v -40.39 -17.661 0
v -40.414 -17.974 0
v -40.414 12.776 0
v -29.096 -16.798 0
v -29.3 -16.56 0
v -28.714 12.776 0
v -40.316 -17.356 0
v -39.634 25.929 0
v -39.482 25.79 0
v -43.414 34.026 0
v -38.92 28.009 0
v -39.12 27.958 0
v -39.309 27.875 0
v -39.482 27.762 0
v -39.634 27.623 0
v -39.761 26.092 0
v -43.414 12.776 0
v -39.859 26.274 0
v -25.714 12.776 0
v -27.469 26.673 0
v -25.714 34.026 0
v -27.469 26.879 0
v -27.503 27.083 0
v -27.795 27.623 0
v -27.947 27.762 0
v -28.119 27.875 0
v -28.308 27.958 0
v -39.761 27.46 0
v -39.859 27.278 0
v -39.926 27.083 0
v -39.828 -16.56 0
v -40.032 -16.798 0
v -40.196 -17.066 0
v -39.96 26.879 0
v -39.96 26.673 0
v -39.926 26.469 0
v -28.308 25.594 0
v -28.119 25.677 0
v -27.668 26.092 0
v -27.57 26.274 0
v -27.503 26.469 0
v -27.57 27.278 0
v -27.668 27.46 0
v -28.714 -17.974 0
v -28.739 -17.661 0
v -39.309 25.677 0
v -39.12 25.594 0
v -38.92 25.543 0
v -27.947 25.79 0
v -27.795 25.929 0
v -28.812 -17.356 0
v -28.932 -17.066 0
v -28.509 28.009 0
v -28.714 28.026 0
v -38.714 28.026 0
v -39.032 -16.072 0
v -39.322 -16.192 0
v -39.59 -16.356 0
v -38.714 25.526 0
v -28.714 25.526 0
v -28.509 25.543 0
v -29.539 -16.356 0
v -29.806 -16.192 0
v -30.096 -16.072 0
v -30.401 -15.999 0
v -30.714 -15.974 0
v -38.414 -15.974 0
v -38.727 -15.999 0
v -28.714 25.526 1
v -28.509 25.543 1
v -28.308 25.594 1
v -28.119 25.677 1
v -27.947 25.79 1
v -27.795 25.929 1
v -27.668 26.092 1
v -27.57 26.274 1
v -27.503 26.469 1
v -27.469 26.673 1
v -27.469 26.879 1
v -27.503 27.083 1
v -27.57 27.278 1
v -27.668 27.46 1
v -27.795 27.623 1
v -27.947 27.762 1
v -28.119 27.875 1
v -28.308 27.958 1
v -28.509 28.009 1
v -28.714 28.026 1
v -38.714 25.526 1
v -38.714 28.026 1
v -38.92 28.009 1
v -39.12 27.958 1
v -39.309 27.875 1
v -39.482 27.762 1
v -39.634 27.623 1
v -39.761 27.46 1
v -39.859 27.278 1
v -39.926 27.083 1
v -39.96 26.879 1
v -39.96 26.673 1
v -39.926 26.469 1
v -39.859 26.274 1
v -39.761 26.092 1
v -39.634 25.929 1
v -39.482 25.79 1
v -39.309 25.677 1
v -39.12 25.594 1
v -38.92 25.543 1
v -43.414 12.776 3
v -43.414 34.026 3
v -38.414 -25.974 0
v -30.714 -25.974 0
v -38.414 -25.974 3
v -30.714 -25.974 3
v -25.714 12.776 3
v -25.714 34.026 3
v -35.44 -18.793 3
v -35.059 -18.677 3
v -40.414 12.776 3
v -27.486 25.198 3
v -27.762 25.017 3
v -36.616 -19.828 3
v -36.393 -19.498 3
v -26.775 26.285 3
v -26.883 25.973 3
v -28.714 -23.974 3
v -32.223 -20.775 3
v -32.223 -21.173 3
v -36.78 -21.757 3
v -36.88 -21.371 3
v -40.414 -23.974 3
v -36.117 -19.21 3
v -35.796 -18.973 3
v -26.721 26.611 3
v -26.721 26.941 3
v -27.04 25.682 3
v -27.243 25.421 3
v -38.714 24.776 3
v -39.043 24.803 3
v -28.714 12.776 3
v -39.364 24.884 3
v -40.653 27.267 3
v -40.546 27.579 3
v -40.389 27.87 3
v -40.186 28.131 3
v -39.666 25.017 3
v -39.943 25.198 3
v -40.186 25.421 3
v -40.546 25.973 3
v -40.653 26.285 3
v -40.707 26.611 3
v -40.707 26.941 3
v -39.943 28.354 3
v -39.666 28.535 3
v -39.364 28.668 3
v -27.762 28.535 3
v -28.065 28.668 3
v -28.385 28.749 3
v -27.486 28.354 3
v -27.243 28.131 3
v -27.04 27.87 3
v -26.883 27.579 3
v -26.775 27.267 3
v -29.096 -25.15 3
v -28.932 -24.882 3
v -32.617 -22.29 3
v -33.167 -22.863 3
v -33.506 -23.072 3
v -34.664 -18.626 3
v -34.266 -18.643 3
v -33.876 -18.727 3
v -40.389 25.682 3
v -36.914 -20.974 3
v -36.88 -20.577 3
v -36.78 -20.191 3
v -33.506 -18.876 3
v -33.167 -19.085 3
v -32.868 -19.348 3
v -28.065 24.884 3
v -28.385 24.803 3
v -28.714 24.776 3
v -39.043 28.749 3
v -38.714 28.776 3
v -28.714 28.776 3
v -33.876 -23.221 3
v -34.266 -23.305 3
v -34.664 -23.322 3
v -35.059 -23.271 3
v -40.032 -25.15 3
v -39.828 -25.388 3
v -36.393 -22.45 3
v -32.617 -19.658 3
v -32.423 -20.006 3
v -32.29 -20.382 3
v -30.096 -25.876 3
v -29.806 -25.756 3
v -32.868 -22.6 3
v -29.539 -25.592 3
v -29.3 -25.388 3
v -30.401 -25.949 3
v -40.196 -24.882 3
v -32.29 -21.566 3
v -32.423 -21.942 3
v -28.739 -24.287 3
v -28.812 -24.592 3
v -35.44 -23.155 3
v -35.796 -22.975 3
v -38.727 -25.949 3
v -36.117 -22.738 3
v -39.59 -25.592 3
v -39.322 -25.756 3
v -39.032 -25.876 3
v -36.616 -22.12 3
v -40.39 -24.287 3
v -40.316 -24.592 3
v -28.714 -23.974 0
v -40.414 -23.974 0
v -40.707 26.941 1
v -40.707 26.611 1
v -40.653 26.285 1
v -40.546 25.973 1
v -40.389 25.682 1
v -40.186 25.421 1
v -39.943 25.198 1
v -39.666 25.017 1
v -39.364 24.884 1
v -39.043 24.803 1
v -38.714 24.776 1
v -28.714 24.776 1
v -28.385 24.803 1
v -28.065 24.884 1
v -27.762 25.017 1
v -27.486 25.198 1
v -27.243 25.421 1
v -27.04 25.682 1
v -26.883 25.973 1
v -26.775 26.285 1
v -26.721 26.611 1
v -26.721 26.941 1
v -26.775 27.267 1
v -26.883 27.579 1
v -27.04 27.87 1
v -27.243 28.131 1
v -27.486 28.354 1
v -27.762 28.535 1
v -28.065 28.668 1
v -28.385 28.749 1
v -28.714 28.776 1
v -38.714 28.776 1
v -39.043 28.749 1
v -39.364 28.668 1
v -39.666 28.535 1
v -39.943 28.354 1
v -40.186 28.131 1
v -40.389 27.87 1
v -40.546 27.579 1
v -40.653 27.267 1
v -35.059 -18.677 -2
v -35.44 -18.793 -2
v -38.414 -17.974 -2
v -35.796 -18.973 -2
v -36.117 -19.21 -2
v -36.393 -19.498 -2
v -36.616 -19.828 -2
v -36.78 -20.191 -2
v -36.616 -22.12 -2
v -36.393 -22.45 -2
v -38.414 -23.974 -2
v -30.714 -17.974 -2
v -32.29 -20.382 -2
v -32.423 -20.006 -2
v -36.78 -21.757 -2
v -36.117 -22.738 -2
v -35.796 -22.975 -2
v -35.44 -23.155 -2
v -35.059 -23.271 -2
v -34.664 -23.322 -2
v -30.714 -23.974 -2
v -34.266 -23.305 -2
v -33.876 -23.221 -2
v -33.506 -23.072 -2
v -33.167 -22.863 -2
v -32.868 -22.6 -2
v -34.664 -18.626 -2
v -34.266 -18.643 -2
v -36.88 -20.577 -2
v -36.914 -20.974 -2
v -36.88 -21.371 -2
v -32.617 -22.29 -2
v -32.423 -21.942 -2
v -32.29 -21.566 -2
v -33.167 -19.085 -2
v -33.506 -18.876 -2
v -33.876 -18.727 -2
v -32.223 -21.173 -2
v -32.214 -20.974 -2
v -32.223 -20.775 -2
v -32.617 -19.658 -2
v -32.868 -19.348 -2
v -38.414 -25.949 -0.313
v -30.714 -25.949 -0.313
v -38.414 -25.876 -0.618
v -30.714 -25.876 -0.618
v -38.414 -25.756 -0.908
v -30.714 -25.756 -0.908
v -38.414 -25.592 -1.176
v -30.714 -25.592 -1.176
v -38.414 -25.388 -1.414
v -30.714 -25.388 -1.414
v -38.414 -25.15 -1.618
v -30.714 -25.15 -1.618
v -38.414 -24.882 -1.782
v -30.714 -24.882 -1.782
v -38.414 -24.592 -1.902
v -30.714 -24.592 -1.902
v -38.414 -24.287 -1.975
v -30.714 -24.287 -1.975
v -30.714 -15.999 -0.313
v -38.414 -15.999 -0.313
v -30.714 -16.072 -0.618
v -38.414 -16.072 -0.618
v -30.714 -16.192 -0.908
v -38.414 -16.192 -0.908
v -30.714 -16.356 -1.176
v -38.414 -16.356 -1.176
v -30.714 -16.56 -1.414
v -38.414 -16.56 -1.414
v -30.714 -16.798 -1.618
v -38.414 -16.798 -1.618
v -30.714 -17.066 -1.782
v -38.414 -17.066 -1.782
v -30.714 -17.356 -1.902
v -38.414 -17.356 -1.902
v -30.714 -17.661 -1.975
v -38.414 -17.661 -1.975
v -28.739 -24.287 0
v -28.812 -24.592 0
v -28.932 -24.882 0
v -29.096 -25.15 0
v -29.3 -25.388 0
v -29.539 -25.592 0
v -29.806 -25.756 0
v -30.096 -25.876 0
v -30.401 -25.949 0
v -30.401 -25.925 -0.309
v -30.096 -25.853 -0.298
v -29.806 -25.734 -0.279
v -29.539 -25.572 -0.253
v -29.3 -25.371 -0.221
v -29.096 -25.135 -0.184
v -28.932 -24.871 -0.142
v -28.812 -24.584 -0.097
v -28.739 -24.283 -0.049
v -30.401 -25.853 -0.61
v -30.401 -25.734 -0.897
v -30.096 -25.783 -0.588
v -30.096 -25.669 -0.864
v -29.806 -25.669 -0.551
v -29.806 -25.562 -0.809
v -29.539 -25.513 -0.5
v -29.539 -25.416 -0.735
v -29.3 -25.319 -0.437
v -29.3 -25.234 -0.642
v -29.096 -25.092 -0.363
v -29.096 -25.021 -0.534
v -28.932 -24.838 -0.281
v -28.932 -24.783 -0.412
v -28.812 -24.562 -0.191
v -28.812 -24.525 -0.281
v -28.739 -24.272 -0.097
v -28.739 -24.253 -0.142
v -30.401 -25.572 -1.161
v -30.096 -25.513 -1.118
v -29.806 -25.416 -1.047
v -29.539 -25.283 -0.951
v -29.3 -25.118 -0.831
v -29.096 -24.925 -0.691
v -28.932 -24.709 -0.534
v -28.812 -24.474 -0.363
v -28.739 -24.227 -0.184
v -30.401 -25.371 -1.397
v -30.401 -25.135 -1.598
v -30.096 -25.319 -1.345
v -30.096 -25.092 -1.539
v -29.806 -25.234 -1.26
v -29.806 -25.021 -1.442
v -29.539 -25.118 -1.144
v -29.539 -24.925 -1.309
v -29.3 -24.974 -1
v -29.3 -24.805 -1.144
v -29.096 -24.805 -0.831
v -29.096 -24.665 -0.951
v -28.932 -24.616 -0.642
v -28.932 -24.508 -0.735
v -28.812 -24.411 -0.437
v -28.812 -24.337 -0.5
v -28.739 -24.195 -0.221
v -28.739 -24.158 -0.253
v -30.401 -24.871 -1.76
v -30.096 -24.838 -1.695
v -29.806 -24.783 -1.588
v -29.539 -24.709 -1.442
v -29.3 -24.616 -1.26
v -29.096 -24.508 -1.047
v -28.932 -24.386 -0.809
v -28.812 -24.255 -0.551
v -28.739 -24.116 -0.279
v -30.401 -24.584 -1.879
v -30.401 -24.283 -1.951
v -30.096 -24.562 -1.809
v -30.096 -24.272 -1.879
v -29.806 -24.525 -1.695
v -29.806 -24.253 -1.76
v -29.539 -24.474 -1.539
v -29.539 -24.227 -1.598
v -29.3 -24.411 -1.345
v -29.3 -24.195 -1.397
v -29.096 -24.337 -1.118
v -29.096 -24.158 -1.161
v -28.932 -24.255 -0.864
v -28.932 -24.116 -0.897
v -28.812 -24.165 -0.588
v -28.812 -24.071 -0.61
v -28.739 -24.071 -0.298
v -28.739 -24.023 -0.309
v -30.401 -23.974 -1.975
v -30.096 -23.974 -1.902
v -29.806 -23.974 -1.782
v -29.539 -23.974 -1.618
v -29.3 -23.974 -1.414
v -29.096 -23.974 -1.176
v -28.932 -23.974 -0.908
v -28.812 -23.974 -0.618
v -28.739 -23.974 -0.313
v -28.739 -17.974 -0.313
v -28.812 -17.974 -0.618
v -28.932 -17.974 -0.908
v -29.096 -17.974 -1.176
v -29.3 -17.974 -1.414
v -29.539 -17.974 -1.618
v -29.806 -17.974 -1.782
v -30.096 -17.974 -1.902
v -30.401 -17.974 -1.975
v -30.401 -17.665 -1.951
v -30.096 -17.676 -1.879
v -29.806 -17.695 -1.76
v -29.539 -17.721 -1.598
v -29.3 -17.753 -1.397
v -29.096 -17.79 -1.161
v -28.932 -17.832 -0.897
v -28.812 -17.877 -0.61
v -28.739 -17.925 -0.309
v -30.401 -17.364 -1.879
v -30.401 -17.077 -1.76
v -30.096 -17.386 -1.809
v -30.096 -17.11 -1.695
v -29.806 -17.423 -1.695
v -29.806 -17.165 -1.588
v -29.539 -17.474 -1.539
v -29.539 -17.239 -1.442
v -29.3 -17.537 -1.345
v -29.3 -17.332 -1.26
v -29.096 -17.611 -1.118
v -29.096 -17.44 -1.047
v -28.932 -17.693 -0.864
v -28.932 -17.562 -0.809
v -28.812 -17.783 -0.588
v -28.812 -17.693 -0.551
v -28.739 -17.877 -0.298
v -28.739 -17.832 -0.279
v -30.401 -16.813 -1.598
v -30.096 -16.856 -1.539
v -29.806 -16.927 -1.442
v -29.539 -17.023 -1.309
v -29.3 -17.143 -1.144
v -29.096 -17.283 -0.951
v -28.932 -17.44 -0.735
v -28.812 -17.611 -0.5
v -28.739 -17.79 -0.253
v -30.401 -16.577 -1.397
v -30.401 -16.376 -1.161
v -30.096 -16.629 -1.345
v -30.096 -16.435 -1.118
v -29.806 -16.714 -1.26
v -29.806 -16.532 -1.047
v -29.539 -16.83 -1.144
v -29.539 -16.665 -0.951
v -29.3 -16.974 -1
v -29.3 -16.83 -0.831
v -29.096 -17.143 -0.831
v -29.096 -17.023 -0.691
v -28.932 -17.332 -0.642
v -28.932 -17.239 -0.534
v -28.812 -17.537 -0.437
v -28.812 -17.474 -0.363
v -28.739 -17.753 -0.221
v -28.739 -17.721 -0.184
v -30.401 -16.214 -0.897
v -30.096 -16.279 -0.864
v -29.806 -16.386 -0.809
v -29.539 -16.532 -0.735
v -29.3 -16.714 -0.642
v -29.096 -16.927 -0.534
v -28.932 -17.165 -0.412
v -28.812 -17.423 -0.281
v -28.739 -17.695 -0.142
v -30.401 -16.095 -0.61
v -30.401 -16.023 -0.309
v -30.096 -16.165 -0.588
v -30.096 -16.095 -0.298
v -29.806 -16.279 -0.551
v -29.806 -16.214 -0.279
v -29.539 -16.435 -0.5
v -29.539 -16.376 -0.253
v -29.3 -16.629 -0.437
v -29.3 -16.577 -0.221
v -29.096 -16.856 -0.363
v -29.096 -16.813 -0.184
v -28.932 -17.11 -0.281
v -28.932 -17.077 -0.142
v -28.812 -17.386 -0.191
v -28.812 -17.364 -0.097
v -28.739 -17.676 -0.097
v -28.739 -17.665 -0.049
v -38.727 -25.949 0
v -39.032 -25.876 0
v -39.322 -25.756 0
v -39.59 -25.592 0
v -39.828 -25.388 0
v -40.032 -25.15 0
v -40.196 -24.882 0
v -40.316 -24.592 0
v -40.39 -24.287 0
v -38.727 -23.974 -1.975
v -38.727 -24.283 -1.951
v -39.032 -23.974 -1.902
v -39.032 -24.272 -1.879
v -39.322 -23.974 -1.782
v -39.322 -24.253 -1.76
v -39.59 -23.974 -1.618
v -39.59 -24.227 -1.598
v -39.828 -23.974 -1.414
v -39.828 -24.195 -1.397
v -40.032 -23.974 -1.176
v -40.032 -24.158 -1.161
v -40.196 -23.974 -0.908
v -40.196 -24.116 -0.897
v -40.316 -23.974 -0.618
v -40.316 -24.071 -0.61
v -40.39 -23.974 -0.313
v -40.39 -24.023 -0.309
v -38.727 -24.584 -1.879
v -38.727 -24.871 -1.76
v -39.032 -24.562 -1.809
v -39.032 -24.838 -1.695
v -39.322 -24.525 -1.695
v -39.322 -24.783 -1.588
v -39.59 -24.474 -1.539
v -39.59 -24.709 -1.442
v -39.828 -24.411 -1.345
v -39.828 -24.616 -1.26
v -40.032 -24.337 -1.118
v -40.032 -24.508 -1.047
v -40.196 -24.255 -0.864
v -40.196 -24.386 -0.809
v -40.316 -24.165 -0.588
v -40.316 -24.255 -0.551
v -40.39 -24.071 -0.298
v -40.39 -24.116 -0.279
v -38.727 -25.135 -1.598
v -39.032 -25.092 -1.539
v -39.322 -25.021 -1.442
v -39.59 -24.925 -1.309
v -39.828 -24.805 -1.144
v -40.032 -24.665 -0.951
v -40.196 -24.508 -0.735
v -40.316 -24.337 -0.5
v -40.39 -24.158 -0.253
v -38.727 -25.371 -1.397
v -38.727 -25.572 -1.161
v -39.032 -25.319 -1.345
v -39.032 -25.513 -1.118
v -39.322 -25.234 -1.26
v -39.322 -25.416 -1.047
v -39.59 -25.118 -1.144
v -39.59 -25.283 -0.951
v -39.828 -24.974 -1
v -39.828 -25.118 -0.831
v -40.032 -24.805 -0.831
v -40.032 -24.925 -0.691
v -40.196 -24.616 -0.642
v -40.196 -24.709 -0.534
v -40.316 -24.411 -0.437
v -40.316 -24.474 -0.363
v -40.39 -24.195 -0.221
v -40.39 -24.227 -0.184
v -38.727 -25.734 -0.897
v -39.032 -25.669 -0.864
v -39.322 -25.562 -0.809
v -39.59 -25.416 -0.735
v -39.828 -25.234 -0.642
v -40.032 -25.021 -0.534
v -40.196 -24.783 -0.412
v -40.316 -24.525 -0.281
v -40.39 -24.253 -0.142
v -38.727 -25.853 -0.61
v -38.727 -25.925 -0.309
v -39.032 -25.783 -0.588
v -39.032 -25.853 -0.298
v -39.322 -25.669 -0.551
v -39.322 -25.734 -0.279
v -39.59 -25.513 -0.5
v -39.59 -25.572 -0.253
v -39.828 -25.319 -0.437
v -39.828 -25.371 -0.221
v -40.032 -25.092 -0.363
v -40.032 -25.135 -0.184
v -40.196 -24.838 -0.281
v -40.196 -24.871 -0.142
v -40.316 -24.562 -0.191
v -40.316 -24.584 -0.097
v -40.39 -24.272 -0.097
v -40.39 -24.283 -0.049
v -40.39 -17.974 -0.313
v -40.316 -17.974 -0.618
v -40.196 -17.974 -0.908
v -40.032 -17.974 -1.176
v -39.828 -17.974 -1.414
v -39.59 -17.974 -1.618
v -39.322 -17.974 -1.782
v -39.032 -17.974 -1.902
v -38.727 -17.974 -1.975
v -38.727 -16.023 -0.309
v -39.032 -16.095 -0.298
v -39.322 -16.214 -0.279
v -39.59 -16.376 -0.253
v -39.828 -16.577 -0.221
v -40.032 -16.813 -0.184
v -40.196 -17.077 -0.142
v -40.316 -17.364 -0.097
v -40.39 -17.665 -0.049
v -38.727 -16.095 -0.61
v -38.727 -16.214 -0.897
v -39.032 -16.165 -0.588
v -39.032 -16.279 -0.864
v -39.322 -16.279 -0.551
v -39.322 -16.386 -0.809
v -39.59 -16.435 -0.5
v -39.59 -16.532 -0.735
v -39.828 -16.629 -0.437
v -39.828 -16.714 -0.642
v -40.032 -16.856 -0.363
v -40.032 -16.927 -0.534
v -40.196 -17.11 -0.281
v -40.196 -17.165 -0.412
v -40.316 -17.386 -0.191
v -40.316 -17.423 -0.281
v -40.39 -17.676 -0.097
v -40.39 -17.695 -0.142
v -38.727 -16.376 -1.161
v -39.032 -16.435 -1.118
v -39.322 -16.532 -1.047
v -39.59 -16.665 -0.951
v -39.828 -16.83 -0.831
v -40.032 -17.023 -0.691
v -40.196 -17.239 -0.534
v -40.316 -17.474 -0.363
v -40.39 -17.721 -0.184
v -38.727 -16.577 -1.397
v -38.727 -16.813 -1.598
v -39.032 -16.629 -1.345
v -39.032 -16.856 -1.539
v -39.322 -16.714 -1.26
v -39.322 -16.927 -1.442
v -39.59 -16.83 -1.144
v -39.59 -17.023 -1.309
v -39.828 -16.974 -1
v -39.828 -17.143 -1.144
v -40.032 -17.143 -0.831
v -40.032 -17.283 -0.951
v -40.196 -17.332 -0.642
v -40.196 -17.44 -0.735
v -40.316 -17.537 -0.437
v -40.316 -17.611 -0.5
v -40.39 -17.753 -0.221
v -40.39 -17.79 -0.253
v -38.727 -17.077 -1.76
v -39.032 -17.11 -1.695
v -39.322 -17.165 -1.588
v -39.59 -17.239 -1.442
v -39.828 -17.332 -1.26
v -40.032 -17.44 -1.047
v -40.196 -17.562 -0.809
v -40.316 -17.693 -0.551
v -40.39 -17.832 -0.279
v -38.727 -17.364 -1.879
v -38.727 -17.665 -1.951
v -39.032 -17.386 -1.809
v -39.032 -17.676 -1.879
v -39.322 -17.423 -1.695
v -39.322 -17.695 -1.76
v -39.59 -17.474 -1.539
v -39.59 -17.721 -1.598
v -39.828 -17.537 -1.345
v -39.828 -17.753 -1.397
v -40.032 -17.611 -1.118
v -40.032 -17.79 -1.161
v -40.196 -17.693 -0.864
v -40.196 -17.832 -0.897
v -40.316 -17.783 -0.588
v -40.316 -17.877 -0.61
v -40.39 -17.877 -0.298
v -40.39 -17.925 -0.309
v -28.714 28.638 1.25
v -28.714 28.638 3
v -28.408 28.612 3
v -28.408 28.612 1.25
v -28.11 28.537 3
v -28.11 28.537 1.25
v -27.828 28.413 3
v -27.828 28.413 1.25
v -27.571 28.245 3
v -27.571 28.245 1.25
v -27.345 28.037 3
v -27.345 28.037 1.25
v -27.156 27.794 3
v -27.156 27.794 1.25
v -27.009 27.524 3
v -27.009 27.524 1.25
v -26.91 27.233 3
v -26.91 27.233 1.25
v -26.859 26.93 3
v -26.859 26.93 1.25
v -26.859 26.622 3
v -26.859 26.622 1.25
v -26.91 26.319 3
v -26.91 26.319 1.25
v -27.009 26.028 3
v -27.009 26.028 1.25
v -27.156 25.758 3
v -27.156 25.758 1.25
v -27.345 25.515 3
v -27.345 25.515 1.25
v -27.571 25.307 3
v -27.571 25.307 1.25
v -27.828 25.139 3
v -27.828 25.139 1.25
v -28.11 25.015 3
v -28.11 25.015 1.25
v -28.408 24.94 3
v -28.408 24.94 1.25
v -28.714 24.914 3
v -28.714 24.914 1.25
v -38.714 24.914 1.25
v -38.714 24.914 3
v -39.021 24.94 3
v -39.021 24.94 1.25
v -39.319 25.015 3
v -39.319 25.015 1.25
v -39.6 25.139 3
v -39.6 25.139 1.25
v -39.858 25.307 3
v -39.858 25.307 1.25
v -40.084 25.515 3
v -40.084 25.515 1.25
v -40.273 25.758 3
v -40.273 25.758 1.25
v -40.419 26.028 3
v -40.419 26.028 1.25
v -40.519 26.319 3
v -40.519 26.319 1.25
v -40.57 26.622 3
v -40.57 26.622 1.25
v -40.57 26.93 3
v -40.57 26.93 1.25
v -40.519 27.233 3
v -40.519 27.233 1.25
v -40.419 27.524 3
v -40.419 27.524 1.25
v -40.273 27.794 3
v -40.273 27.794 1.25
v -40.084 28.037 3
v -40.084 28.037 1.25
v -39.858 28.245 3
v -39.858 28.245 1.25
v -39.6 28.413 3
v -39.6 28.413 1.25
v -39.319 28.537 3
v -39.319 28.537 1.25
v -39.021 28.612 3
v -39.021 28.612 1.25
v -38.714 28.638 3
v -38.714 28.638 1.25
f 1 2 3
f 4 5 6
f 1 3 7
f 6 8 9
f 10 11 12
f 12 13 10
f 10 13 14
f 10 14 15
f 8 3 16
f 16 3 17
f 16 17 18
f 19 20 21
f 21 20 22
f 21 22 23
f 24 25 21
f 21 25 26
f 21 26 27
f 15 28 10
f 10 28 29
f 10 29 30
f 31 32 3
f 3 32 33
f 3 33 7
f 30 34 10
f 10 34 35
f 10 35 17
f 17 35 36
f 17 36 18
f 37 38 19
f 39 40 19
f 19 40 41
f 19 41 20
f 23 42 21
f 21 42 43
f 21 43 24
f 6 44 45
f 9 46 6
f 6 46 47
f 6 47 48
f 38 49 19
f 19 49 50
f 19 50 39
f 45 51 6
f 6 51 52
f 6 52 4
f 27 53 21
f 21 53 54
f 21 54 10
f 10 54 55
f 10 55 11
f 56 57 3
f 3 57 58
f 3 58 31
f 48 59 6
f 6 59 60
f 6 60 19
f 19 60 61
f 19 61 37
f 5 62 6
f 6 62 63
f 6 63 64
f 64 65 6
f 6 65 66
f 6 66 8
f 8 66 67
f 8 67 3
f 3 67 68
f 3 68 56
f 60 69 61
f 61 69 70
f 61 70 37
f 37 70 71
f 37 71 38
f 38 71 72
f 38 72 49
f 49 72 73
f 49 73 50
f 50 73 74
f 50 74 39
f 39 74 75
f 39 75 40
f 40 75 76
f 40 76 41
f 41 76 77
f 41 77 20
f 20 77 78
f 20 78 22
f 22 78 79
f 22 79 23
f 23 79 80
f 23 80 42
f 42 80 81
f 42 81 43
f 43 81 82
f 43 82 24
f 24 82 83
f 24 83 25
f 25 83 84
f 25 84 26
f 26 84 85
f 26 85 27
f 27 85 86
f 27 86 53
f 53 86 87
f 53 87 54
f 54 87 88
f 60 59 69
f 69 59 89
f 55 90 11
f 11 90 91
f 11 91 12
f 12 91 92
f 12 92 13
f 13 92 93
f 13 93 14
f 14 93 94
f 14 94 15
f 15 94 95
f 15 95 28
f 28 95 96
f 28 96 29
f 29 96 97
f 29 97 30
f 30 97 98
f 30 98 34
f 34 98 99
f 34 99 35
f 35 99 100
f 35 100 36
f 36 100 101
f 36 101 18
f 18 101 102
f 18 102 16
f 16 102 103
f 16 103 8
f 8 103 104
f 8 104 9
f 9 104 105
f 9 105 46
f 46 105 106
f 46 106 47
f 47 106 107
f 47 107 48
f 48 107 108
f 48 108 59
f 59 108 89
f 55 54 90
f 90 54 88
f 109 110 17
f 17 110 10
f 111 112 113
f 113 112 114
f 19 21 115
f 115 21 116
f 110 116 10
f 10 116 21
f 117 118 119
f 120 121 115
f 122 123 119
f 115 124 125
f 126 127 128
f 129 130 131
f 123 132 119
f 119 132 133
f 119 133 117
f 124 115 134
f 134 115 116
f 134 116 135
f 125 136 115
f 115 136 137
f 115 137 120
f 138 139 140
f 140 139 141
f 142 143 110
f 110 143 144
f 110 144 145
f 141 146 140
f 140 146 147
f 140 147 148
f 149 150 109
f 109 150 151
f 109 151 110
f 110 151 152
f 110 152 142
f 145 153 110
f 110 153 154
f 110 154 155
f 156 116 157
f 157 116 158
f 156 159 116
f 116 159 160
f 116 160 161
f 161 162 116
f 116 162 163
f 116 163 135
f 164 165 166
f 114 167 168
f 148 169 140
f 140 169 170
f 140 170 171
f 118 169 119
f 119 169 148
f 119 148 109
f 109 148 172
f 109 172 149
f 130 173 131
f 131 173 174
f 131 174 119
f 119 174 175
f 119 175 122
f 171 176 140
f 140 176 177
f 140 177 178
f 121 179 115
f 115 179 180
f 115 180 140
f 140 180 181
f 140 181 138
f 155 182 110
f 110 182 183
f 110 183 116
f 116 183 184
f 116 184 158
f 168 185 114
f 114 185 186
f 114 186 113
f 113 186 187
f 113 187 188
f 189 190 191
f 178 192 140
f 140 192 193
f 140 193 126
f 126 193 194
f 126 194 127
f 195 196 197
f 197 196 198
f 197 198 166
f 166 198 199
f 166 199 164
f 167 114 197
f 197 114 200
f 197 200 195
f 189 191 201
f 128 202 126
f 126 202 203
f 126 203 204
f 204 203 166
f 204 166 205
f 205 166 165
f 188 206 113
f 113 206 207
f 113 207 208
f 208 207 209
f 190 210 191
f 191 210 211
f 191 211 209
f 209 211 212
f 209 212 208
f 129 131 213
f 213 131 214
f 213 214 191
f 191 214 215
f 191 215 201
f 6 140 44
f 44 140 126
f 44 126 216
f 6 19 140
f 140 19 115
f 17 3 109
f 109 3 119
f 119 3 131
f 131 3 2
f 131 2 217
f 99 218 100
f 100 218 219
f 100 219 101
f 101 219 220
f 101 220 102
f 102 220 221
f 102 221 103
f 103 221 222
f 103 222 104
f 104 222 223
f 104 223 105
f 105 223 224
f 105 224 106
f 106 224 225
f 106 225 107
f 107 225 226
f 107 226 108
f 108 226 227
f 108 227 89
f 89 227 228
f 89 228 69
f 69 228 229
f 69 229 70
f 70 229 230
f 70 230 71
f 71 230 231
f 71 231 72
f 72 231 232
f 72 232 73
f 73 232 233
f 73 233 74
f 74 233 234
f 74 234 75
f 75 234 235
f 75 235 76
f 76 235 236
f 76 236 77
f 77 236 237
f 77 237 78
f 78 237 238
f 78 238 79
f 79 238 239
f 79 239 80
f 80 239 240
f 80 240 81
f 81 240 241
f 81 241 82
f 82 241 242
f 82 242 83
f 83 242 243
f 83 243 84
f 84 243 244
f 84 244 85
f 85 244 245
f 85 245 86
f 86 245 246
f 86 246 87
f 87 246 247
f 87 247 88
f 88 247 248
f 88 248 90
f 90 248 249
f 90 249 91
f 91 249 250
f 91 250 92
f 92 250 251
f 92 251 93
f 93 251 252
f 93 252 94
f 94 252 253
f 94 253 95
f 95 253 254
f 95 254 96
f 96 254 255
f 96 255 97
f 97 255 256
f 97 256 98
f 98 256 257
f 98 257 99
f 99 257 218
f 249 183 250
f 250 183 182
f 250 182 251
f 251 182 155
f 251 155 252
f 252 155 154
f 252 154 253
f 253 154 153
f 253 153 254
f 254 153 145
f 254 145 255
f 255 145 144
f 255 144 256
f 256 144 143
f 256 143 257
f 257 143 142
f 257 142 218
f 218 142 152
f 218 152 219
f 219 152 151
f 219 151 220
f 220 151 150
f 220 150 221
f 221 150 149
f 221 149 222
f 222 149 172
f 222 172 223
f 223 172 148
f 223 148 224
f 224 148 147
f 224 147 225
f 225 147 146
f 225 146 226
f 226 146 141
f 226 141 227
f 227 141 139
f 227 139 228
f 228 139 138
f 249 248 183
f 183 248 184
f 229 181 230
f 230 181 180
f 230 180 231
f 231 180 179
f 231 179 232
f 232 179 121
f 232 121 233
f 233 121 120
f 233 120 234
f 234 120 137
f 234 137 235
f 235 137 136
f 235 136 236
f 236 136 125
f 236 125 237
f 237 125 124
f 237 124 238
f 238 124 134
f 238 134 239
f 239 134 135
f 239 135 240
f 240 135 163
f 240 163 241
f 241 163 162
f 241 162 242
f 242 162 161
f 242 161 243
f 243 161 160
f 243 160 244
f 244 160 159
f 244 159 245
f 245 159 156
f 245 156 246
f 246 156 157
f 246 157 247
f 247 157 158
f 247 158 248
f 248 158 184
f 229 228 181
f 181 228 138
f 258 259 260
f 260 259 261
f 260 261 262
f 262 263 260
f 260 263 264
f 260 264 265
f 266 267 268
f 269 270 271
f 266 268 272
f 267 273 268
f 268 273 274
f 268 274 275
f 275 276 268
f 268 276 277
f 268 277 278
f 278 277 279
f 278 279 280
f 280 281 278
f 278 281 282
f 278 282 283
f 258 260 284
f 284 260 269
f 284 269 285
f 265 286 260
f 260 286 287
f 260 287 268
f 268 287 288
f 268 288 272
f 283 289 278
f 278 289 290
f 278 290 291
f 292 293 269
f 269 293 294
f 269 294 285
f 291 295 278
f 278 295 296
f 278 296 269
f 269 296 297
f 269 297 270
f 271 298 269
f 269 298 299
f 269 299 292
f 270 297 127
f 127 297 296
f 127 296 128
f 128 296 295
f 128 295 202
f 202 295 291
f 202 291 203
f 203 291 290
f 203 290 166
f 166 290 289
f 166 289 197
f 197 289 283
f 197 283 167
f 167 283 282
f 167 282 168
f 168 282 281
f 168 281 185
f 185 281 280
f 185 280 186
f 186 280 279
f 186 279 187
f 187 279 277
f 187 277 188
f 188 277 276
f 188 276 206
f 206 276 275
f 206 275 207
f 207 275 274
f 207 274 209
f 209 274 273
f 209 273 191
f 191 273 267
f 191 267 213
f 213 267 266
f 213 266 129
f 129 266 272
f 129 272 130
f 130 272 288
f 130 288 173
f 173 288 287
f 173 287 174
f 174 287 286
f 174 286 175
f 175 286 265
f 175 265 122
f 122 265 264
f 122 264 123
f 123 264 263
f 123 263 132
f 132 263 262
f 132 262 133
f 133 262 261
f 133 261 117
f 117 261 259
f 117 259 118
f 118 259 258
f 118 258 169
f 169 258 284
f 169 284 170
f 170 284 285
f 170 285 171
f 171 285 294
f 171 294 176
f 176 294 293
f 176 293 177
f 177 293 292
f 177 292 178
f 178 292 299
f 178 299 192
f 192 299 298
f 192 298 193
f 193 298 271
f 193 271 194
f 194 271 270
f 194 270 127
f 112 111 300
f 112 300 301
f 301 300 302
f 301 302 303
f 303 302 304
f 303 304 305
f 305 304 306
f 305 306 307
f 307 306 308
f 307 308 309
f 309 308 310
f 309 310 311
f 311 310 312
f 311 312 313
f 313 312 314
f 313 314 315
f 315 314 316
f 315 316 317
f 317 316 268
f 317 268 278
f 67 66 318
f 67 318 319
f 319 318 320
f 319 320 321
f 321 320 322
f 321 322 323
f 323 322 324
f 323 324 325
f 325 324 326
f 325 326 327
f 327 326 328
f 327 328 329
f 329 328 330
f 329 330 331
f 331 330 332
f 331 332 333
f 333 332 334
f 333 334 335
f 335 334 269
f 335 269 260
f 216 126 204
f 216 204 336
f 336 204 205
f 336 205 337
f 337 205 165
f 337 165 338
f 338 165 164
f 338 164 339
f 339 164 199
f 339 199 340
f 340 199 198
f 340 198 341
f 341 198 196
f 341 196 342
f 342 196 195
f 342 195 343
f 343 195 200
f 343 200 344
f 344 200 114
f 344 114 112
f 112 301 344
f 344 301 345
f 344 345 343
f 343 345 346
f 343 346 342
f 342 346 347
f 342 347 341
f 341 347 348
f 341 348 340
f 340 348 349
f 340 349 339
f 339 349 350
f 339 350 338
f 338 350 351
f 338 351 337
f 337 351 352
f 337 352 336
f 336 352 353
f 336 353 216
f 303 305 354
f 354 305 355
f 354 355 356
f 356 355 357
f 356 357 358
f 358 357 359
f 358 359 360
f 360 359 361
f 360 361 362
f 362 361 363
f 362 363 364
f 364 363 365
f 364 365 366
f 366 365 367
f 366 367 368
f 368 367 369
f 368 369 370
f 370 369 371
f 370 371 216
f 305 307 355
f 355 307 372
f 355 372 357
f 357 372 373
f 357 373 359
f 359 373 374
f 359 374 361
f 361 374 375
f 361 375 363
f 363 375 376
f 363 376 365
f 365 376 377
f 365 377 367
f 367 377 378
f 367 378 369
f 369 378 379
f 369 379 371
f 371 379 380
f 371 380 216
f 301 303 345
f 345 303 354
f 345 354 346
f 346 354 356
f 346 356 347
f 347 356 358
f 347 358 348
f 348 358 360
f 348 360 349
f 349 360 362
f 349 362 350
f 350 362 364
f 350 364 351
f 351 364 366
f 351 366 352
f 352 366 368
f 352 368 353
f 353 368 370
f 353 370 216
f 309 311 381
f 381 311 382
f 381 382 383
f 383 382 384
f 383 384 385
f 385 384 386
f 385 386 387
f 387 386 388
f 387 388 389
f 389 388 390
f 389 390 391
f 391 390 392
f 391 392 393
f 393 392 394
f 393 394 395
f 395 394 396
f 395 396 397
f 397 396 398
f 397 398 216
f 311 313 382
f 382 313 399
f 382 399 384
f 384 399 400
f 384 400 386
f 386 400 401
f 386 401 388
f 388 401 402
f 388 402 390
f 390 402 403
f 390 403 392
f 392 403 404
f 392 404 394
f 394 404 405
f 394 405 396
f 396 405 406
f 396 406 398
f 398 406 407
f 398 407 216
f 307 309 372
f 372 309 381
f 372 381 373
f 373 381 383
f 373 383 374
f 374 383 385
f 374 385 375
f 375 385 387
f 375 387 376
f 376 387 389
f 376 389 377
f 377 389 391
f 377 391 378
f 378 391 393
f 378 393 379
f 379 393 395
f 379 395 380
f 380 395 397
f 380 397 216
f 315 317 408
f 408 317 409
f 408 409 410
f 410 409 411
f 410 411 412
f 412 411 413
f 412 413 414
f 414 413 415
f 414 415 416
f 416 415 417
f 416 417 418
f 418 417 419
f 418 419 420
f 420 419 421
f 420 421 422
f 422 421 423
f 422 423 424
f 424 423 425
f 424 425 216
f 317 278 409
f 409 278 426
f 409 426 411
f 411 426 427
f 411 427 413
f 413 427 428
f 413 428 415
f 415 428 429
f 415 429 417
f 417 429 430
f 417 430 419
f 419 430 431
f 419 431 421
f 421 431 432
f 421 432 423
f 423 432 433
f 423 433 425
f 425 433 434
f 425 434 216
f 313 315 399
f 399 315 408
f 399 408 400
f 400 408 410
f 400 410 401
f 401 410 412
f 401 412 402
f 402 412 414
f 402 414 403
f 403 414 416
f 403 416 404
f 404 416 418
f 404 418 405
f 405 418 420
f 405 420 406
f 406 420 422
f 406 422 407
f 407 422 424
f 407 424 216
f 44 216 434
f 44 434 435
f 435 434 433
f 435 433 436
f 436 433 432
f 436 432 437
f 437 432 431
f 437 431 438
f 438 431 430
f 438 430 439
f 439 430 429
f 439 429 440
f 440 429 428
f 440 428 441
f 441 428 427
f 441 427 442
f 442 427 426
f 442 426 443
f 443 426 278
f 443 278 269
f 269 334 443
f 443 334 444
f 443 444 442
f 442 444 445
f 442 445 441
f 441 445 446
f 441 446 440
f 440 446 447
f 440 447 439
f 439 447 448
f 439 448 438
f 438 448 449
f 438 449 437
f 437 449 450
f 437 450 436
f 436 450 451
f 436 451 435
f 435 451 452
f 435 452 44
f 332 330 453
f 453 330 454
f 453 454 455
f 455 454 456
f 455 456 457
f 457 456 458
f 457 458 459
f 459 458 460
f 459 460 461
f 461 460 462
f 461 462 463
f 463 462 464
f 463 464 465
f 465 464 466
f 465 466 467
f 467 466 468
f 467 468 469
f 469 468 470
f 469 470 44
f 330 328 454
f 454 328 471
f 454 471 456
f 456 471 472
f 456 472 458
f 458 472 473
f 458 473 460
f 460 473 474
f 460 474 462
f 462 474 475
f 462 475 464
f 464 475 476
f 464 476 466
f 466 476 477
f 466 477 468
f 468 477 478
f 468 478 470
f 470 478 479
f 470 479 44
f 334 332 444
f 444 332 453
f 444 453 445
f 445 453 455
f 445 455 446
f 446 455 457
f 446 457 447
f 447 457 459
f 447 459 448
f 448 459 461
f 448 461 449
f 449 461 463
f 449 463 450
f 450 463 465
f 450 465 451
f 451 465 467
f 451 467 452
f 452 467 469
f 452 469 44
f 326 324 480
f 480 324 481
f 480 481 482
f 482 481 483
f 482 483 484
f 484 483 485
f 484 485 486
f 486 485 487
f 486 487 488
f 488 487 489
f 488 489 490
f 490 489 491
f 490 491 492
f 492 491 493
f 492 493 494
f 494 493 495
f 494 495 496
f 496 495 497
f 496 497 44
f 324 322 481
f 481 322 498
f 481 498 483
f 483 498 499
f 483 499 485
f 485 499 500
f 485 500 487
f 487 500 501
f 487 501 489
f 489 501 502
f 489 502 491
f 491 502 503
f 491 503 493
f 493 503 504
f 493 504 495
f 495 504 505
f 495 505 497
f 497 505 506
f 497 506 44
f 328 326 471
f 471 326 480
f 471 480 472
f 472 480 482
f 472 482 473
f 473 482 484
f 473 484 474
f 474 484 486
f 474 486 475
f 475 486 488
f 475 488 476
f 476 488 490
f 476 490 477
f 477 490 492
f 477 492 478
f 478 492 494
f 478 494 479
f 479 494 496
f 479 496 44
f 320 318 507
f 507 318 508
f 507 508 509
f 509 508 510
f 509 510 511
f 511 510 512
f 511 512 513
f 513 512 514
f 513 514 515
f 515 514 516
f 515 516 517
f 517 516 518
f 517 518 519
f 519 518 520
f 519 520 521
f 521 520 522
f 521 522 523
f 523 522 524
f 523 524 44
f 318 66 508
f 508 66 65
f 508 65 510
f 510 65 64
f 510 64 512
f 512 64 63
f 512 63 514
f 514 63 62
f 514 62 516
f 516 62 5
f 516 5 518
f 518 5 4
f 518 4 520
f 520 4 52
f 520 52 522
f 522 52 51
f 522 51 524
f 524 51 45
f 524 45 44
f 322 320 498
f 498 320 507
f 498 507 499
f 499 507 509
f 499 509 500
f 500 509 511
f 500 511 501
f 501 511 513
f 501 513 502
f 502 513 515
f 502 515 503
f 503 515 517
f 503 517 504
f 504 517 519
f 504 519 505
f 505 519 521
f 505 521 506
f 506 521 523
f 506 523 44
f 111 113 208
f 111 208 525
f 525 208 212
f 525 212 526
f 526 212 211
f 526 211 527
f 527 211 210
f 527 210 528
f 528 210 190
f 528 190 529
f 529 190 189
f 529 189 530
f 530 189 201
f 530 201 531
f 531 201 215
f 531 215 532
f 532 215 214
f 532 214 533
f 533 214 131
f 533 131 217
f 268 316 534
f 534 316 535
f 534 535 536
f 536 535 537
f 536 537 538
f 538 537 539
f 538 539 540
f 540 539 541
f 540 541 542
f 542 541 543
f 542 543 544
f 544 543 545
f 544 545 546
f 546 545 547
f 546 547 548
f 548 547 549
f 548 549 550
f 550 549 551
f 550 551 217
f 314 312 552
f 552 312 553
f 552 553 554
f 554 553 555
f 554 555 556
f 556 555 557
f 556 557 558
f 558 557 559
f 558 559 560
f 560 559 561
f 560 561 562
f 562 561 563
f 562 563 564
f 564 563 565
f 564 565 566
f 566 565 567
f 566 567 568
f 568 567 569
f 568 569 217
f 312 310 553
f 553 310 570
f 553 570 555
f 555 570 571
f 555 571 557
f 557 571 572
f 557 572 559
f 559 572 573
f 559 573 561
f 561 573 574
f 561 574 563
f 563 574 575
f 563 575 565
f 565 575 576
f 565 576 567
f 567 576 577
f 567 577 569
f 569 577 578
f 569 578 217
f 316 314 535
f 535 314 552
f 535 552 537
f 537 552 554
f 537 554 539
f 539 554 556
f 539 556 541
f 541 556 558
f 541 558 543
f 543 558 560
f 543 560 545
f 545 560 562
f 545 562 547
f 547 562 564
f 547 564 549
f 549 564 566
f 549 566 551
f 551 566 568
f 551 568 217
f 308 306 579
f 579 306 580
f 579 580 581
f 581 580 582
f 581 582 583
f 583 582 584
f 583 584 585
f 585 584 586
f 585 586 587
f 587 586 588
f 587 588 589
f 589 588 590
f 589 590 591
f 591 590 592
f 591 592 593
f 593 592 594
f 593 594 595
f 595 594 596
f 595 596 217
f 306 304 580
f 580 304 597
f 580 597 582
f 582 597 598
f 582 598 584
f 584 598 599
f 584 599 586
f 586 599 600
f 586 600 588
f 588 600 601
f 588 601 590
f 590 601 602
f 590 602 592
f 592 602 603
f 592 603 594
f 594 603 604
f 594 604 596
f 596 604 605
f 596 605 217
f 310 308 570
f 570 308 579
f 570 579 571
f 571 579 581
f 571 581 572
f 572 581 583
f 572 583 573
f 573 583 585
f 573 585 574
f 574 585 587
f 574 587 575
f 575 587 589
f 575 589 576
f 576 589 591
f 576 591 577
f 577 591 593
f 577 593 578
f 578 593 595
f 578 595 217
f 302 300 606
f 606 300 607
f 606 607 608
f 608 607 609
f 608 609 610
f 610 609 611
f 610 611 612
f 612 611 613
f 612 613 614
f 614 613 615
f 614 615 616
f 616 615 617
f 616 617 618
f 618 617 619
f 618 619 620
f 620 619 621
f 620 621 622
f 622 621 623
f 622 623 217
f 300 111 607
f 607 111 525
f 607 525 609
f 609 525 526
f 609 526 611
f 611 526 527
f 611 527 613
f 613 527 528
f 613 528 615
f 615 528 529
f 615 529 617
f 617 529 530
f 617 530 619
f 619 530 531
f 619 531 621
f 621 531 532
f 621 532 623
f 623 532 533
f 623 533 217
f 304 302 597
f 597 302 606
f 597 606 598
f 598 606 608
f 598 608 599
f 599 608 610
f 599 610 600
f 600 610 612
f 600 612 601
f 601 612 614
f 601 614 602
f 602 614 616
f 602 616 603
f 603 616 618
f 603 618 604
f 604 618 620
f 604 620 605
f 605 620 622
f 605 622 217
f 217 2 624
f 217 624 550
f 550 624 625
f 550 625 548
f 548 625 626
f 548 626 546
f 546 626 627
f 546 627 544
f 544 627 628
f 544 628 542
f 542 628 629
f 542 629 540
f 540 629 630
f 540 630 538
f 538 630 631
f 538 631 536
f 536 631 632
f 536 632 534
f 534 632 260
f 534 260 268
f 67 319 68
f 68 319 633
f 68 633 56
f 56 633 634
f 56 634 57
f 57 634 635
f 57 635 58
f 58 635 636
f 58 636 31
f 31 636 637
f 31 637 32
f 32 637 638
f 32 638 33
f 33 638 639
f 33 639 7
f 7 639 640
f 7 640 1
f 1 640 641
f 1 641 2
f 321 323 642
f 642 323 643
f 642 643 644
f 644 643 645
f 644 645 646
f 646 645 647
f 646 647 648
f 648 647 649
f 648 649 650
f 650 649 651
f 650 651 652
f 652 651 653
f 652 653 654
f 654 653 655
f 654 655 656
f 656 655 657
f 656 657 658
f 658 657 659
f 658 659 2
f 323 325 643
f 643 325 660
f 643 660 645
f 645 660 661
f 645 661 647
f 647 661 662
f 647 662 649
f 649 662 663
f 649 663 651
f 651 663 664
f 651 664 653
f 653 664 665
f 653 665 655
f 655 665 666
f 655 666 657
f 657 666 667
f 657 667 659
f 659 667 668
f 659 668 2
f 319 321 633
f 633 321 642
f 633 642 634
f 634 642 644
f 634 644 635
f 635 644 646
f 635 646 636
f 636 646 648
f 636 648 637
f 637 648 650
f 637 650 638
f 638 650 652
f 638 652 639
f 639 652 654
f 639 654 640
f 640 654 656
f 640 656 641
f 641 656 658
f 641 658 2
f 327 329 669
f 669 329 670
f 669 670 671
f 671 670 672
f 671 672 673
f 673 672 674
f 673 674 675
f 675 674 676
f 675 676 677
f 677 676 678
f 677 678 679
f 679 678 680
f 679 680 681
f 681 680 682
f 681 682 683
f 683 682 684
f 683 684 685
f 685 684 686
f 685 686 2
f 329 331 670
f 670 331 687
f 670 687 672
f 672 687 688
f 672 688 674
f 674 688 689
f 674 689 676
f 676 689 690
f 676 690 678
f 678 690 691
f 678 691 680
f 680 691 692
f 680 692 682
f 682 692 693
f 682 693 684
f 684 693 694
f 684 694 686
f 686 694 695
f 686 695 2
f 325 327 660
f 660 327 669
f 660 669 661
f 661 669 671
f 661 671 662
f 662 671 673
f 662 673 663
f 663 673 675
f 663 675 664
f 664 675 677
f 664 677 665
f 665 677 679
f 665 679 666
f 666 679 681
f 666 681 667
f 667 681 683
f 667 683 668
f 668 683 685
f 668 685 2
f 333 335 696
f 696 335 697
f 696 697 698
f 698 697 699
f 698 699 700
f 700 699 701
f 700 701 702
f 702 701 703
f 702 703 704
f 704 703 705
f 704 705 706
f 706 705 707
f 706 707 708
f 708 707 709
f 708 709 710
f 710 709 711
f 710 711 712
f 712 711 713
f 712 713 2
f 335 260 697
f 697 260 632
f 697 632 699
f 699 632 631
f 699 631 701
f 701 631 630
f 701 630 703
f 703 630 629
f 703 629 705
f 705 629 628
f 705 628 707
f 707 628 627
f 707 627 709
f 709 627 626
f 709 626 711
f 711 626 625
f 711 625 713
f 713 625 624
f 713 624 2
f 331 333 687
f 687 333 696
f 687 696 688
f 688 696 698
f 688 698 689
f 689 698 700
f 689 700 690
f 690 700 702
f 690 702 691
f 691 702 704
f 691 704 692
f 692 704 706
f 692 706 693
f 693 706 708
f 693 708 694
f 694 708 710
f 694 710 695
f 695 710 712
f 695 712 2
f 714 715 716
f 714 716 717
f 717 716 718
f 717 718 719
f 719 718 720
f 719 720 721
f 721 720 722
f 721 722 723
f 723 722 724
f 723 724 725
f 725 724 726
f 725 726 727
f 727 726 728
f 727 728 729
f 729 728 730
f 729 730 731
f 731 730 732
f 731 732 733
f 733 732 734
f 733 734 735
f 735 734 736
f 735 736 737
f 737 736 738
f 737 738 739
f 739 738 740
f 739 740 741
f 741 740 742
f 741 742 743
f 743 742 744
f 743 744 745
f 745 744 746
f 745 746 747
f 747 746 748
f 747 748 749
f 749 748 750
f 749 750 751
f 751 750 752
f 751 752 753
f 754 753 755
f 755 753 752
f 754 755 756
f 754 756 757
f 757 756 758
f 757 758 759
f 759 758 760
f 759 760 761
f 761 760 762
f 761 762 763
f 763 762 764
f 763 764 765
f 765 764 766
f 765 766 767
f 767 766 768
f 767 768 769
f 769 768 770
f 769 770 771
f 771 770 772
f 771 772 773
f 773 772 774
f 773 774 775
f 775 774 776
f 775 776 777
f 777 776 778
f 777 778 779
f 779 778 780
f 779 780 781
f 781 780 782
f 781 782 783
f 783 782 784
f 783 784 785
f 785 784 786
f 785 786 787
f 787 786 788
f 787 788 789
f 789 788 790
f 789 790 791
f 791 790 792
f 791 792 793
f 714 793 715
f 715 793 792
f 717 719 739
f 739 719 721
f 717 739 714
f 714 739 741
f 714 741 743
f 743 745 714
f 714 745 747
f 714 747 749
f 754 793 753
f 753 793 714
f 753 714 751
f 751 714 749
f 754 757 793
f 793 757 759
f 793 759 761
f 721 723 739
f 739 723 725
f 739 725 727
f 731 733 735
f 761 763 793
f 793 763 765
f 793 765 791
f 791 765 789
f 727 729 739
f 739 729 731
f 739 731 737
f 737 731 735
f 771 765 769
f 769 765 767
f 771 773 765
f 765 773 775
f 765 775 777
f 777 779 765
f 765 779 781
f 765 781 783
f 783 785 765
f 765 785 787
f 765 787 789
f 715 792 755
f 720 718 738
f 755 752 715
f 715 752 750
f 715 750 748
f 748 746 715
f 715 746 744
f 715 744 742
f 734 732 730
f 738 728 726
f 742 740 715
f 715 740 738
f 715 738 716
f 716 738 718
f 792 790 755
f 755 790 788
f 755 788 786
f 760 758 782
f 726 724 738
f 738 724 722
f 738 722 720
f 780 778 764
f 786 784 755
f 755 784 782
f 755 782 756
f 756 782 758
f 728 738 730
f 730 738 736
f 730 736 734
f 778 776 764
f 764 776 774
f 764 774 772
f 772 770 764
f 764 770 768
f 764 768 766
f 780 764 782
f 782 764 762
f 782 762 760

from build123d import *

# Parameters (mm, degrees)
SKETCH1_W               = 17.7
SKETCH1_H               = 60
BOSS_EXTRUDE1_DEPTH     = 3
SKETCH2_W               = 3
SKETCH2_H               = 38.75
CUT_EXTRUDE1_DEPTH      = 56.240991234
CUT_EXTRUDE2_DEPTH      = 56.240991234
CUT_EXTRUDE3_DEPTH      = 2
SKETCH5_W               = 11.7
SKETCH5_H               = 10
BOSS_EXTRUDE2_DEPTH     = 2
CUT_EXTRUDE4_DEPTH      = 56.385621893
CUT_EXTRUDE4_DEPTH_BACK = 56.385621893
SKETCH6_R               = 2.35
FILLET1_R               = 2
FILLET2_R               = 2
FILLET3_R               = 2
FILLET4_R               = 2
BOSS_EXTRUDE3_DEPTH     = 1.75


with BuildPart() as part:
    # Sketch1 → Boss-Extrude1 (new body)
    with BuildSketch(Plane.XY):
        with Locations((-34.564285714, 4.025974026)):
            Rectangle(SKETCH1_W, SKETCH1_H)
    extrude(amount=BOSS_EXTRUDE1_DEPTH)

    # Sketch2 → Cut-Extrude1 (cut, through all)
    with BuildSketch(Plane.XY.offset(3)):
        with Locations((-41.914285714, -6.599025974)):
            Rectangle(SKETCH2_W, SKETCH2_H)
        with Locations((-27.214285714, -6.599025974)):
            Rectangle(SKETCH2_W, SKETCH2_H)
    extrude(amount=-CUT_EXTRUDE1_DEPTH, mode=Mode.SUBTRACT)

    # Sketch3 → Cut-Extrude2 (cut, through all)
    with BuildSketch(Plane.XY.offset(3)):
        with BuildLine():
            Line((-28.714285714, 25.525974026), (-38.714285714, 25.525974026))
            ThreePointArc((-38.714285714, 25.525974026), (-39.964285714, 26.775974026), (-38.714285714, 28.025974026))
            Line((-38.714285714, 28.025974026), (-28.714285714, 28.025974026))
            ThreePointArc((-28.714285714, 28.025974026), (-27.464285714, 26.775974026), (-28.714285714, 25.525974026))
        make_face()
    extrude(amount=-CUT_EXTRUDE2_DEPTH, mode=Mode.SUBTRACT)

    # Sketch4 → Cut-Extrude3 (cut)
    with BuildSketch(Plane.XY.offset(3)):
        with BuildLine():
            Line((-38.714285714, 28.775974026), (-28.714285714, 28.775974026))
            ThreePointArc((-28.714285714, 28.775974026), (-26.714285714, 26.775974026), (-28.714285714, 24.775974026))
            Line((-28.714285714, 24.775974026), (-38.714285714, 24.775974026))
            ThreePointArc((-38.714285714, 24.775974026), (-40.714285714, 26.775974026), (-38.714285714, 28.775974026))
        make_face()
    extrude(amount=-CUT_EXTRUDE3_DEPTH, mode=Mode.SUBTRACT)

    # Sketch5 → Boss-Extrude2 (add)
    with BuildSketch(Plane(origin=(0, 0, 0), x_dir=(-1, 0, 0), z_dir=(0, 0, -1))):
        with Locations((34.564285714, -20.974025974)):
            Rectangle(SKETCH5_W, SKETCH5_H)
    extrude(amount=BOSS_EXTRUDE2_DEPTH)

    # Sketch6 → Cut-Extrude4 (cut, two sides: drawn at the far end of the back side and taken through both)
    with BuildSketch(Plane(origin=(0, 0, -2), x_dir=(-1, 0, 0), z_dir=(0, 0, -1)).offset(-CUT_EXTRUDE4_DEPTH_BACK)):
        with Locations((34.564285714, -20.974025974)):
            Circle(SKETCH6_R)
    extrude(amount=CUT_EXTRUDE4_DEPTH + CUT_EXTRUDE4_DEPTH_BACK, mode=Mode.SUBTRACT)

    # Fillet1
    fillet1_edges = [part.edges().sort_by_distance(p)[0] for p in [
        (-34.564285714, -25.974025974, -2),
    ]]
    fillet(fillet1_edges, radius=FILLET1_R)

    # Fillet2
    fillet2_edges = [part.edges().sort_by_distance(p)[0] for p in [
        (-34.564285714, -15.974025974, -2),
    ]]
    fillet(fillet2_edges, radius=FILLET2_R - 0.0001)  # a hair under: the kernel refuses the full size

    # Fillet3
    fillet3_edges = [part.edges().sort_by_distance(p)[0] for p in [
        (-28.714285714, -25.974025974, 1.5),
        (-28.714285714, -25.388239536, -1.414213562),
        (-28.714285714, -20.973975974, -2),
        (-28.714285714, -16.559783122, -1.414242852),
    ]]
    fillet(fillet3_edges, radius=FILLET3_R - 0.0001)  # a hair under: the kernel refuses the full size

    # Fillet4
    fillet4_edges = [part.edges().sort_by_distance(p)[0] for p in [
        (-40.414285714, -20.973975974, -2),
        (-40.414285714, -25.974025974, 1.5),
        (-40.414285714, -25.388239536, -1.414213562),
        (-40.414285714, -16.559783122, -1.414242852),
    ]]
    fillet(fillet4_edges, radius=FILLET4_R - 0.0001)  # a hair under: the kernel refuses the full size


with BuildPart() as body_2:
    # Sketch7 → Boss-Extrude3 (new body)
    with BuildSketch(Plane.XY.offset(3)):
        with BuildLine():
            Line((-28.714285714, 24.914251461), (-38.714285714, 24.914251461))
            ThreePointArc((-38.714285714, 24.914251461), (-40.576008279, 26.775974026), (-38.714285714, 28.637696591))
            Line((-38.714285714, 28.637696591), (-28.714285714, 28.637696591))
            ThreePointArc((-28.714285714, 28.637696591), (-26.85256315, 26.775974026), (-28.714285714, 24.914251461))
        make_face()
    extrude(amount=-BOSS_EXTRUDE3_DEPTH)


solid = Compound([part.part, body_2.part])
